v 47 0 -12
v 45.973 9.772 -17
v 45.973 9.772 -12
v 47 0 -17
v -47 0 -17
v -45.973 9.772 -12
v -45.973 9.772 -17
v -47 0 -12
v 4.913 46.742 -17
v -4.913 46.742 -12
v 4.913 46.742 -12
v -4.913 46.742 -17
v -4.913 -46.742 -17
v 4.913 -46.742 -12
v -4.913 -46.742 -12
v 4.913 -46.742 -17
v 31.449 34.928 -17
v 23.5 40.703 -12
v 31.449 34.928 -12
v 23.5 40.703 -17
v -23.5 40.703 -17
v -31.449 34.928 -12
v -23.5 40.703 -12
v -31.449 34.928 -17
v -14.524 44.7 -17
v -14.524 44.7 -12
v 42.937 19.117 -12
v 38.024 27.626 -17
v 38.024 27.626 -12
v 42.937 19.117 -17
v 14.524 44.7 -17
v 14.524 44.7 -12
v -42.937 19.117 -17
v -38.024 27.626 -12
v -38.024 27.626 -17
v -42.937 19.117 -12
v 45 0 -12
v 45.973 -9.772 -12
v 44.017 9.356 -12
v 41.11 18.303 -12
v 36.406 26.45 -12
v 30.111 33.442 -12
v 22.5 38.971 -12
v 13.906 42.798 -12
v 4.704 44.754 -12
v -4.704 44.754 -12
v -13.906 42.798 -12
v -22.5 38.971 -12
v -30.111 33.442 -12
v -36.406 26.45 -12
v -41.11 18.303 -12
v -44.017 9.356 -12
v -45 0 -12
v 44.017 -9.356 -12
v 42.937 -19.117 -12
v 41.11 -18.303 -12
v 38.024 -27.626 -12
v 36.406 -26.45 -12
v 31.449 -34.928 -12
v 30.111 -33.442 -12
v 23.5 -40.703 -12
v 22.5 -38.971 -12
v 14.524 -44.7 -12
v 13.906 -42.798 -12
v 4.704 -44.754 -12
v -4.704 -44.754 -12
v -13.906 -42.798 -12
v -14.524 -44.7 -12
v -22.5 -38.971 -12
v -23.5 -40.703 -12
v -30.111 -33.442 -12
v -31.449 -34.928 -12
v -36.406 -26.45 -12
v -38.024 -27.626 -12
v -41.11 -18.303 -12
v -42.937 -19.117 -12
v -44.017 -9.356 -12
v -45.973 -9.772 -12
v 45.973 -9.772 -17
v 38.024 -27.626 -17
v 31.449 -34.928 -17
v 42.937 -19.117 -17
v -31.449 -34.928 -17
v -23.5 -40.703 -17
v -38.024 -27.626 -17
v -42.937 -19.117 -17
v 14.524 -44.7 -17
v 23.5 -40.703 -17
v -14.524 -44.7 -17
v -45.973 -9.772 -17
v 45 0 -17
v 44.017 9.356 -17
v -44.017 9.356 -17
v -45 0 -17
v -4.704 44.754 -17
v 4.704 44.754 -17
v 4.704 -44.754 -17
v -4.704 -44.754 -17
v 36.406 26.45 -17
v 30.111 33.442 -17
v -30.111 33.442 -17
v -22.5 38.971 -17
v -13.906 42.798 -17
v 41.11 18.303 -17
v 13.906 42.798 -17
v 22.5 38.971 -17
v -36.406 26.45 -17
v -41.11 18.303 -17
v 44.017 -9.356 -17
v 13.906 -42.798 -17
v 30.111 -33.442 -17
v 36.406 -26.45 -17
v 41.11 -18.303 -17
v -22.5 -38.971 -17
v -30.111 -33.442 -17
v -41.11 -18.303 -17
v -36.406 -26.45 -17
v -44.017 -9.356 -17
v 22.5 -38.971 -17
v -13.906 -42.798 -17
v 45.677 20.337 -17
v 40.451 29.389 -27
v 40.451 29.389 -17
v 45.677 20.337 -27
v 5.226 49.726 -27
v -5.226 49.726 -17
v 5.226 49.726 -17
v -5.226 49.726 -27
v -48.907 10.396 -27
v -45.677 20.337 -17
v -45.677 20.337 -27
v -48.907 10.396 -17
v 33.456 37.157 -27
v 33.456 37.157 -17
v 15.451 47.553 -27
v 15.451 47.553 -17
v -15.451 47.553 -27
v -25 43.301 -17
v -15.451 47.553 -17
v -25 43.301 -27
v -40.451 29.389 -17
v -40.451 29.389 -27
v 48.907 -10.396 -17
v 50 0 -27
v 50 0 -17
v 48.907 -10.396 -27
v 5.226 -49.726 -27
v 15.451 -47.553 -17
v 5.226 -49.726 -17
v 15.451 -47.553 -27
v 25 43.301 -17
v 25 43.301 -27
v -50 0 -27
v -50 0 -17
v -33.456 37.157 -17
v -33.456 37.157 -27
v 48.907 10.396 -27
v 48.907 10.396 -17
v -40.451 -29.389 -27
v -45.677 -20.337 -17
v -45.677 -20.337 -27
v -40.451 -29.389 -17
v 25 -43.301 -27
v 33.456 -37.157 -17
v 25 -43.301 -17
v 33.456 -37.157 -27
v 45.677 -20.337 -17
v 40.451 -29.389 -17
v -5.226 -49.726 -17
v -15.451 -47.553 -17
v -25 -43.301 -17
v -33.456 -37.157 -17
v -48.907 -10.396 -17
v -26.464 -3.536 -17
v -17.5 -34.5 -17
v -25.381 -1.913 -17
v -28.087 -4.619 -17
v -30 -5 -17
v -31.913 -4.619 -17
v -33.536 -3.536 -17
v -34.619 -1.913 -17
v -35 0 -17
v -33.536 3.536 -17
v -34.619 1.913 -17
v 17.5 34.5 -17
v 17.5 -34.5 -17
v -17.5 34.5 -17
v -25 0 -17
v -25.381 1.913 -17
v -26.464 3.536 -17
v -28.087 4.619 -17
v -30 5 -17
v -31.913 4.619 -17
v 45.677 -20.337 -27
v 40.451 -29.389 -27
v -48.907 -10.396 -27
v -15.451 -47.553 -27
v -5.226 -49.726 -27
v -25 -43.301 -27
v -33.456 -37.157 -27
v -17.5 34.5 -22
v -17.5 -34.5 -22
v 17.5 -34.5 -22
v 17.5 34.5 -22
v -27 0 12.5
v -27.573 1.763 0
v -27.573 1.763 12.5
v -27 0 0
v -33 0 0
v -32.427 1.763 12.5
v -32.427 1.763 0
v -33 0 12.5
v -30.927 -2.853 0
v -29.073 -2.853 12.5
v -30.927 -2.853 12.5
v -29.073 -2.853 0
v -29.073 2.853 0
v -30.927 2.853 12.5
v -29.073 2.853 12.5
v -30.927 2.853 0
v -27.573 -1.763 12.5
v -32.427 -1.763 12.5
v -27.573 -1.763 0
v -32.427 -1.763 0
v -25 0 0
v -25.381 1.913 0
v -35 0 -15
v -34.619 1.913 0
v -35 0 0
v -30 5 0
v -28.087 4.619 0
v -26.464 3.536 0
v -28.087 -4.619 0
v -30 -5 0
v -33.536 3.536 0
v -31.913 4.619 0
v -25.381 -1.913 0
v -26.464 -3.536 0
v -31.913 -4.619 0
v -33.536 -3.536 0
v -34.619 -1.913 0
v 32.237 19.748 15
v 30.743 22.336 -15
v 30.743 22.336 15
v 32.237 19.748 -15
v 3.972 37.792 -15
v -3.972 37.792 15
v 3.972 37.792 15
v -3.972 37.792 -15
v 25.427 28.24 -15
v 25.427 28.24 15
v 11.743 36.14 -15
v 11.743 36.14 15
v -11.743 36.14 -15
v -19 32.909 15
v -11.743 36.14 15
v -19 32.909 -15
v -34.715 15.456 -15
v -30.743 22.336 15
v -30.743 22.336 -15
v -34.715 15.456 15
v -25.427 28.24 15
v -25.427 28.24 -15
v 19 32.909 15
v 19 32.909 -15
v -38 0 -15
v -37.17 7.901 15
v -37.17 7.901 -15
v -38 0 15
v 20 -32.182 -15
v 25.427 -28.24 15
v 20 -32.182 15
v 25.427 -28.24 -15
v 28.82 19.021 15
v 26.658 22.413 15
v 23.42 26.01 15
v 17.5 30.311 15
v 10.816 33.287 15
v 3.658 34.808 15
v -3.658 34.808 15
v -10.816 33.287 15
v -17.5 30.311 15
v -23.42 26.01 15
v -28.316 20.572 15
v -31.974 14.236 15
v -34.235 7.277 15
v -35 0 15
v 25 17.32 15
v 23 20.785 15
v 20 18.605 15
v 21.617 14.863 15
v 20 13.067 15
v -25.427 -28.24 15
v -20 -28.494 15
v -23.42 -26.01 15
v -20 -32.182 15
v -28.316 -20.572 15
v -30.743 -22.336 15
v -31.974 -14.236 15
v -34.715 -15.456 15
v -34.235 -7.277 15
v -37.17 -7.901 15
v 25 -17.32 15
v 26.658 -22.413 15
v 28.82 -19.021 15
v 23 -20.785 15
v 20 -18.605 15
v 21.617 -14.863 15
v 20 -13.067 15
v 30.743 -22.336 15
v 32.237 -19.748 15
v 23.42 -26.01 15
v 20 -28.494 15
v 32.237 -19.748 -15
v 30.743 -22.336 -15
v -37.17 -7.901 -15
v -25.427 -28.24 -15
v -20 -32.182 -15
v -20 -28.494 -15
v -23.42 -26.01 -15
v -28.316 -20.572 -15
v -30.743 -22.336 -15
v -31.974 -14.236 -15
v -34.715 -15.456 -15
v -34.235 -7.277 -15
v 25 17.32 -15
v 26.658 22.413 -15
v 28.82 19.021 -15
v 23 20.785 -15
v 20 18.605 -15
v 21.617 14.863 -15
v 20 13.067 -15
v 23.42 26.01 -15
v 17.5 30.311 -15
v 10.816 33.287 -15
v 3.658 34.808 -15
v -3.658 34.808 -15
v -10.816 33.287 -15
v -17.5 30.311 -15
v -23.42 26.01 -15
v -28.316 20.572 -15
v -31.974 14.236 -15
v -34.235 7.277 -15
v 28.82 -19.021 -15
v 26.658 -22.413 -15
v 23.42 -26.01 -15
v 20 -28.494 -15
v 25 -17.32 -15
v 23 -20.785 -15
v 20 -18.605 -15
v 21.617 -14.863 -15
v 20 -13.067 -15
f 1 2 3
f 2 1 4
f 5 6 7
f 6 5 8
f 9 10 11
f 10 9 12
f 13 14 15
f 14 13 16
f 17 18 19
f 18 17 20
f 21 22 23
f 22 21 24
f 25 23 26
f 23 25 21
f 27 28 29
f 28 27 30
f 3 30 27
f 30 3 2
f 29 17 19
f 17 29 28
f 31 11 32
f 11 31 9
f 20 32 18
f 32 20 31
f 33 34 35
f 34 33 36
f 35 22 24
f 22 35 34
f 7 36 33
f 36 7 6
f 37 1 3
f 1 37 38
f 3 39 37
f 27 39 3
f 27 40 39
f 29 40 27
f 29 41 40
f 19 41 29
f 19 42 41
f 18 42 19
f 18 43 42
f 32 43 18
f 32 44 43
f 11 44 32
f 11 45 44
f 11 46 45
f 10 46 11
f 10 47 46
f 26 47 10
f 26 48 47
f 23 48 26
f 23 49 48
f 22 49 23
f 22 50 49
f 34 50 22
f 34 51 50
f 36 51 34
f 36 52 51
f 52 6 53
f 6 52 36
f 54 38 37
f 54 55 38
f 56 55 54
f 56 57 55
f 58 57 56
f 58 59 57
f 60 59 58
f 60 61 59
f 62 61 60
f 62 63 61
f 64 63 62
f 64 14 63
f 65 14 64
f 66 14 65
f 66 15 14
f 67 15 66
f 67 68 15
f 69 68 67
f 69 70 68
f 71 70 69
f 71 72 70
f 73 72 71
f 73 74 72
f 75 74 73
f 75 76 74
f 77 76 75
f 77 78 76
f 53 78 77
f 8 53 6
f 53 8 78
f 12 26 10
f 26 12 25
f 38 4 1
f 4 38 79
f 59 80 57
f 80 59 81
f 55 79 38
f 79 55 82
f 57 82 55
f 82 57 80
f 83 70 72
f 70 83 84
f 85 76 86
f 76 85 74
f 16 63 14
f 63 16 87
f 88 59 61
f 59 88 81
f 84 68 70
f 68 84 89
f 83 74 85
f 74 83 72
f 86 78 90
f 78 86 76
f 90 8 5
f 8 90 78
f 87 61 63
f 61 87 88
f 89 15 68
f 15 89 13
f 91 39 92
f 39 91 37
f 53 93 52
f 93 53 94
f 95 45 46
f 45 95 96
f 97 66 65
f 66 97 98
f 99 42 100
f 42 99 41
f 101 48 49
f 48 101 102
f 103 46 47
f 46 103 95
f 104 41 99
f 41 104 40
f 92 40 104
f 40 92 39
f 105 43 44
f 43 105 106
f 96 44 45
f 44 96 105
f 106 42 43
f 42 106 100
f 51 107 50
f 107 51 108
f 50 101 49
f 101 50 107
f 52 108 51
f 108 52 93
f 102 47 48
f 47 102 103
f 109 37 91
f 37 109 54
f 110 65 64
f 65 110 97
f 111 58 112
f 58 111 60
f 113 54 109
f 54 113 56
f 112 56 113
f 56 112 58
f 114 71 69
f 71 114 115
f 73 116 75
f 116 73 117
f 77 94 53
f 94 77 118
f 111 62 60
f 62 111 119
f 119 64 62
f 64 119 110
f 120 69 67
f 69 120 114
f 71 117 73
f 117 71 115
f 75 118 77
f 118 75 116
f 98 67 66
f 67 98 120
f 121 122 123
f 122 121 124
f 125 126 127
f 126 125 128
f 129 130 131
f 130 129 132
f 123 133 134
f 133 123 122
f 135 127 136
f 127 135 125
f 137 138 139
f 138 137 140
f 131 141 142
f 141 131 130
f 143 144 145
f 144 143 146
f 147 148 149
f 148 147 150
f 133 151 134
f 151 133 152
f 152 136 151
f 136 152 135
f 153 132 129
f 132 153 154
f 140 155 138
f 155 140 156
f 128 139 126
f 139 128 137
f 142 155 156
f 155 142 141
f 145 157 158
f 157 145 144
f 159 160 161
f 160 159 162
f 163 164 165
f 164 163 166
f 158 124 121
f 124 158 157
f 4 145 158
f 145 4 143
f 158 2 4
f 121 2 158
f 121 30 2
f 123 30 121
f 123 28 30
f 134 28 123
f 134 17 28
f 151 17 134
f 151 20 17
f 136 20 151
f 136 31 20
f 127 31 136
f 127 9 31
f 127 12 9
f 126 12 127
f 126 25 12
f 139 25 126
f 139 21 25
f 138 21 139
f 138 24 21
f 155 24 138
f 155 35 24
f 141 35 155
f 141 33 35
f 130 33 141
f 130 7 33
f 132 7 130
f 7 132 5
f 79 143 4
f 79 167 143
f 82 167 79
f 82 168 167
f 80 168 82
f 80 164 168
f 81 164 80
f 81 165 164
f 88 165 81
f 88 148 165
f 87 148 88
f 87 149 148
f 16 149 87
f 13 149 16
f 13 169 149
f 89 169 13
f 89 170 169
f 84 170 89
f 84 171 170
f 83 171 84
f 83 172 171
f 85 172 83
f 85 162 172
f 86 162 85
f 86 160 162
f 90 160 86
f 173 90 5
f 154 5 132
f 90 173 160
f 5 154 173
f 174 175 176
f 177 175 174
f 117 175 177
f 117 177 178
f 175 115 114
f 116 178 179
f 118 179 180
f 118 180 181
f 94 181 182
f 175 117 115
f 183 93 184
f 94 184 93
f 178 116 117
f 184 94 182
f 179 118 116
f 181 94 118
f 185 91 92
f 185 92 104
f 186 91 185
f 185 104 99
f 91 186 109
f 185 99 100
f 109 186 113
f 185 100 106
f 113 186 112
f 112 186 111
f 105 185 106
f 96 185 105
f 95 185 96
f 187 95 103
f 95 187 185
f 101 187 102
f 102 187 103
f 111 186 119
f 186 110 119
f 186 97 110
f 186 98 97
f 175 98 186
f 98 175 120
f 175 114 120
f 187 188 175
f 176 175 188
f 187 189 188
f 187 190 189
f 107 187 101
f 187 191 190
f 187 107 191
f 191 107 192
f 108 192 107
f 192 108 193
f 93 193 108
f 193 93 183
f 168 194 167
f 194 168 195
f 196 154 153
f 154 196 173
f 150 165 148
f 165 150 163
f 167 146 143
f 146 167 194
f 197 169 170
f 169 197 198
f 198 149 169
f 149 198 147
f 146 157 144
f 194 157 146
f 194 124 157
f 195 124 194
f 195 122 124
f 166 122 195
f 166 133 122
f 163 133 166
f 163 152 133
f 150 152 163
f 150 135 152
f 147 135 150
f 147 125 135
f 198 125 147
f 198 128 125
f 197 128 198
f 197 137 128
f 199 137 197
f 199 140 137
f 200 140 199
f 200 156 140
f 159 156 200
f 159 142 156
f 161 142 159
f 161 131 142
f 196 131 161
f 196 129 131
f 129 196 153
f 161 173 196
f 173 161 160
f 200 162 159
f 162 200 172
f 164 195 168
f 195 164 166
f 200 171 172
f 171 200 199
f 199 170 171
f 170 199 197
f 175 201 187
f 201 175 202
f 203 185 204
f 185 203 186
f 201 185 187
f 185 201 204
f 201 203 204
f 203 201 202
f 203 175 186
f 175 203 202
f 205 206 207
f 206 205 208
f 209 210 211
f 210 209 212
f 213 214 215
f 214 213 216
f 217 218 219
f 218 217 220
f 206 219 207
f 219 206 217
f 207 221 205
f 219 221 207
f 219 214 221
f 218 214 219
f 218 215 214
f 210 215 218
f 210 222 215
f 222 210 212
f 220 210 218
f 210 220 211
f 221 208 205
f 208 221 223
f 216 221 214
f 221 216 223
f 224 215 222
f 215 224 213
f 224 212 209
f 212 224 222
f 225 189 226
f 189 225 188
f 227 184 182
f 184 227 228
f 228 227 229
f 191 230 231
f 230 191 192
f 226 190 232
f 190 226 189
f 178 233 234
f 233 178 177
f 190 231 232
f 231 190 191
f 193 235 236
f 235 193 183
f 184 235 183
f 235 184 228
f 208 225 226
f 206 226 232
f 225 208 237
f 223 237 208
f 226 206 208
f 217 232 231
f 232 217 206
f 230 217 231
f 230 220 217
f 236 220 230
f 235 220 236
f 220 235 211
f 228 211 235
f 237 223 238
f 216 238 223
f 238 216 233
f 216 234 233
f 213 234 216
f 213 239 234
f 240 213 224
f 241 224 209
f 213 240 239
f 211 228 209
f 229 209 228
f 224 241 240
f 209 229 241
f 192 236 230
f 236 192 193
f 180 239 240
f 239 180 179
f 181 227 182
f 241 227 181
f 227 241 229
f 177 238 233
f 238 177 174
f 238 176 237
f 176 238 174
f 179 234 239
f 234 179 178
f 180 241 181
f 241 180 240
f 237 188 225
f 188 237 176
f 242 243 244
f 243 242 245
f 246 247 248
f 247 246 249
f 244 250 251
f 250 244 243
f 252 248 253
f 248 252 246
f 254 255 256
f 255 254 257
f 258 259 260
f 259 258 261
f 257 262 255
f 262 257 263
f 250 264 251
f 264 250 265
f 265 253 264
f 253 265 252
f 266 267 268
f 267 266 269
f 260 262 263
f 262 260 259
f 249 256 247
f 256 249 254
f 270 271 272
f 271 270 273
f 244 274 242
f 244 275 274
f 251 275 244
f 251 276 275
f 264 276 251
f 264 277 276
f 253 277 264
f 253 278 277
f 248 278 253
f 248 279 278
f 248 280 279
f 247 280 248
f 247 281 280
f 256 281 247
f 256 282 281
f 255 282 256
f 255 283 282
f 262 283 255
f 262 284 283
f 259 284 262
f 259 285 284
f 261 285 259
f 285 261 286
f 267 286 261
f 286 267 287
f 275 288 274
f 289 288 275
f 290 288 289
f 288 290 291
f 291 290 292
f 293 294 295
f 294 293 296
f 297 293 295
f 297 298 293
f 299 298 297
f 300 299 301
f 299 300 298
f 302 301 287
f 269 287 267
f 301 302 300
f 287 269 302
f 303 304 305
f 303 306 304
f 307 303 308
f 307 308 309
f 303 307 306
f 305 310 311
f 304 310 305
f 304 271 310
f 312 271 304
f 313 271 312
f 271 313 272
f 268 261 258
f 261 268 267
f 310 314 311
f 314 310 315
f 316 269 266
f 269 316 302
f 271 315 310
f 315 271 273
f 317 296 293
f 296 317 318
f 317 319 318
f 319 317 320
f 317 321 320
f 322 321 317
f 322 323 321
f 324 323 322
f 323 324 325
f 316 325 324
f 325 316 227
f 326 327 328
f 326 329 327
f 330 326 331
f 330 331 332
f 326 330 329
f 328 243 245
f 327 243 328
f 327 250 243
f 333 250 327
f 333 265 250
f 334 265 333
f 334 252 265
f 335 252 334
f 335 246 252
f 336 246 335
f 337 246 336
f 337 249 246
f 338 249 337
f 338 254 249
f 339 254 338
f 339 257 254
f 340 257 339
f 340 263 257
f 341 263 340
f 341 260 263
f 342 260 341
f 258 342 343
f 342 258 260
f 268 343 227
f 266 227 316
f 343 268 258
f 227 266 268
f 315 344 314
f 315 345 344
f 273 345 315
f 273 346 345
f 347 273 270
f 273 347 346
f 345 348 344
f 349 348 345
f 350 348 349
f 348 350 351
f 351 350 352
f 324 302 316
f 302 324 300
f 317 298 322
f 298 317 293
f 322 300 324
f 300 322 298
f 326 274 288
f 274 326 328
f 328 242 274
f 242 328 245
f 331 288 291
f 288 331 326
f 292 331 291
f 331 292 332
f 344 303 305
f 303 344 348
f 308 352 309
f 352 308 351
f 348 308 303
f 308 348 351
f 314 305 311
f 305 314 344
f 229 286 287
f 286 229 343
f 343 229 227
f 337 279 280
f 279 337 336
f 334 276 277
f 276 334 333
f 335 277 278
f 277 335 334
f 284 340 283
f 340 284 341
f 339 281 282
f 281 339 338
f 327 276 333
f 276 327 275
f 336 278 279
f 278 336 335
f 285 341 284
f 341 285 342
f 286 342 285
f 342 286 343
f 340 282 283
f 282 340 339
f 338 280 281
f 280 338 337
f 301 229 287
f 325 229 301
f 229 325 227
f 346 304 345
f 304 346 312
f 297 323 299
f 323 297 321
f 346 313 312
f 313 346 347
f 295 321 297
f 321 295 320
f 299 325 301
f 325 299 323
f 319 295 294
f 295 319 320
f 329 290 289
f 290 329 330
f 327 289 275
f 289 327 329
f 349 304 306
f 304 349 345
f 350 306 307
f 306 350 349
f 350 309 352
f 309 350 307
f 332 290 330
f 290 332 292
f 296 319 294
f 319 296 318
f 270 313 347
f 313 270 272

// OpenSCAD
module semi_circle(
    height=10,
    outer_radius=38,
    inner_radius=20,
    offset=[35,0,0]
)
{
    difference()
    {
        cylinder(h = height, r = outer_radius, center = true);
        translate(offset)cylinder(h = height, r = inner_radius, center = true);
    }
};

// lower lid
union()
{
    // The inner barrier
    translate([0,0,0])
    difference()
    {
        semi_circle(
            height=30,
            outer_radius=38,
            inner_radius=20,
            offset=[35,0,0]
        );
        semi_circle(
            height=30,
            outer_radius=35,
            inner_radius=24,
            offset=[35,0,0]
        );
        translate([15,0,-10]) cube(size=[10,40,50],center=true);
        translate([0,-33,-10]) cube(size=[40,10,50],center=true);
    }

    // The Base
    translate([0,0,-22])
    difference()
    {
        cylinder(h = 10, r = 50, center = true);
        translate([0,0,2.5])cube([35,69,5],center=true);
    }
    difference()
    {
        translate([0,0,-16])cylinder(h = 8, r = 47, center = true);
        translate([0,0,-16])cylinder(h = 8, r = 45, center = true);
    }
    
    // The Rod
    translate([-30,0,0])union()
    {
        translate([0,0,6])cylinder(h=13,r=3,center=true);
        translate([0,0,-10])cylinder(h=20,r=5,center=true);
    }
}
